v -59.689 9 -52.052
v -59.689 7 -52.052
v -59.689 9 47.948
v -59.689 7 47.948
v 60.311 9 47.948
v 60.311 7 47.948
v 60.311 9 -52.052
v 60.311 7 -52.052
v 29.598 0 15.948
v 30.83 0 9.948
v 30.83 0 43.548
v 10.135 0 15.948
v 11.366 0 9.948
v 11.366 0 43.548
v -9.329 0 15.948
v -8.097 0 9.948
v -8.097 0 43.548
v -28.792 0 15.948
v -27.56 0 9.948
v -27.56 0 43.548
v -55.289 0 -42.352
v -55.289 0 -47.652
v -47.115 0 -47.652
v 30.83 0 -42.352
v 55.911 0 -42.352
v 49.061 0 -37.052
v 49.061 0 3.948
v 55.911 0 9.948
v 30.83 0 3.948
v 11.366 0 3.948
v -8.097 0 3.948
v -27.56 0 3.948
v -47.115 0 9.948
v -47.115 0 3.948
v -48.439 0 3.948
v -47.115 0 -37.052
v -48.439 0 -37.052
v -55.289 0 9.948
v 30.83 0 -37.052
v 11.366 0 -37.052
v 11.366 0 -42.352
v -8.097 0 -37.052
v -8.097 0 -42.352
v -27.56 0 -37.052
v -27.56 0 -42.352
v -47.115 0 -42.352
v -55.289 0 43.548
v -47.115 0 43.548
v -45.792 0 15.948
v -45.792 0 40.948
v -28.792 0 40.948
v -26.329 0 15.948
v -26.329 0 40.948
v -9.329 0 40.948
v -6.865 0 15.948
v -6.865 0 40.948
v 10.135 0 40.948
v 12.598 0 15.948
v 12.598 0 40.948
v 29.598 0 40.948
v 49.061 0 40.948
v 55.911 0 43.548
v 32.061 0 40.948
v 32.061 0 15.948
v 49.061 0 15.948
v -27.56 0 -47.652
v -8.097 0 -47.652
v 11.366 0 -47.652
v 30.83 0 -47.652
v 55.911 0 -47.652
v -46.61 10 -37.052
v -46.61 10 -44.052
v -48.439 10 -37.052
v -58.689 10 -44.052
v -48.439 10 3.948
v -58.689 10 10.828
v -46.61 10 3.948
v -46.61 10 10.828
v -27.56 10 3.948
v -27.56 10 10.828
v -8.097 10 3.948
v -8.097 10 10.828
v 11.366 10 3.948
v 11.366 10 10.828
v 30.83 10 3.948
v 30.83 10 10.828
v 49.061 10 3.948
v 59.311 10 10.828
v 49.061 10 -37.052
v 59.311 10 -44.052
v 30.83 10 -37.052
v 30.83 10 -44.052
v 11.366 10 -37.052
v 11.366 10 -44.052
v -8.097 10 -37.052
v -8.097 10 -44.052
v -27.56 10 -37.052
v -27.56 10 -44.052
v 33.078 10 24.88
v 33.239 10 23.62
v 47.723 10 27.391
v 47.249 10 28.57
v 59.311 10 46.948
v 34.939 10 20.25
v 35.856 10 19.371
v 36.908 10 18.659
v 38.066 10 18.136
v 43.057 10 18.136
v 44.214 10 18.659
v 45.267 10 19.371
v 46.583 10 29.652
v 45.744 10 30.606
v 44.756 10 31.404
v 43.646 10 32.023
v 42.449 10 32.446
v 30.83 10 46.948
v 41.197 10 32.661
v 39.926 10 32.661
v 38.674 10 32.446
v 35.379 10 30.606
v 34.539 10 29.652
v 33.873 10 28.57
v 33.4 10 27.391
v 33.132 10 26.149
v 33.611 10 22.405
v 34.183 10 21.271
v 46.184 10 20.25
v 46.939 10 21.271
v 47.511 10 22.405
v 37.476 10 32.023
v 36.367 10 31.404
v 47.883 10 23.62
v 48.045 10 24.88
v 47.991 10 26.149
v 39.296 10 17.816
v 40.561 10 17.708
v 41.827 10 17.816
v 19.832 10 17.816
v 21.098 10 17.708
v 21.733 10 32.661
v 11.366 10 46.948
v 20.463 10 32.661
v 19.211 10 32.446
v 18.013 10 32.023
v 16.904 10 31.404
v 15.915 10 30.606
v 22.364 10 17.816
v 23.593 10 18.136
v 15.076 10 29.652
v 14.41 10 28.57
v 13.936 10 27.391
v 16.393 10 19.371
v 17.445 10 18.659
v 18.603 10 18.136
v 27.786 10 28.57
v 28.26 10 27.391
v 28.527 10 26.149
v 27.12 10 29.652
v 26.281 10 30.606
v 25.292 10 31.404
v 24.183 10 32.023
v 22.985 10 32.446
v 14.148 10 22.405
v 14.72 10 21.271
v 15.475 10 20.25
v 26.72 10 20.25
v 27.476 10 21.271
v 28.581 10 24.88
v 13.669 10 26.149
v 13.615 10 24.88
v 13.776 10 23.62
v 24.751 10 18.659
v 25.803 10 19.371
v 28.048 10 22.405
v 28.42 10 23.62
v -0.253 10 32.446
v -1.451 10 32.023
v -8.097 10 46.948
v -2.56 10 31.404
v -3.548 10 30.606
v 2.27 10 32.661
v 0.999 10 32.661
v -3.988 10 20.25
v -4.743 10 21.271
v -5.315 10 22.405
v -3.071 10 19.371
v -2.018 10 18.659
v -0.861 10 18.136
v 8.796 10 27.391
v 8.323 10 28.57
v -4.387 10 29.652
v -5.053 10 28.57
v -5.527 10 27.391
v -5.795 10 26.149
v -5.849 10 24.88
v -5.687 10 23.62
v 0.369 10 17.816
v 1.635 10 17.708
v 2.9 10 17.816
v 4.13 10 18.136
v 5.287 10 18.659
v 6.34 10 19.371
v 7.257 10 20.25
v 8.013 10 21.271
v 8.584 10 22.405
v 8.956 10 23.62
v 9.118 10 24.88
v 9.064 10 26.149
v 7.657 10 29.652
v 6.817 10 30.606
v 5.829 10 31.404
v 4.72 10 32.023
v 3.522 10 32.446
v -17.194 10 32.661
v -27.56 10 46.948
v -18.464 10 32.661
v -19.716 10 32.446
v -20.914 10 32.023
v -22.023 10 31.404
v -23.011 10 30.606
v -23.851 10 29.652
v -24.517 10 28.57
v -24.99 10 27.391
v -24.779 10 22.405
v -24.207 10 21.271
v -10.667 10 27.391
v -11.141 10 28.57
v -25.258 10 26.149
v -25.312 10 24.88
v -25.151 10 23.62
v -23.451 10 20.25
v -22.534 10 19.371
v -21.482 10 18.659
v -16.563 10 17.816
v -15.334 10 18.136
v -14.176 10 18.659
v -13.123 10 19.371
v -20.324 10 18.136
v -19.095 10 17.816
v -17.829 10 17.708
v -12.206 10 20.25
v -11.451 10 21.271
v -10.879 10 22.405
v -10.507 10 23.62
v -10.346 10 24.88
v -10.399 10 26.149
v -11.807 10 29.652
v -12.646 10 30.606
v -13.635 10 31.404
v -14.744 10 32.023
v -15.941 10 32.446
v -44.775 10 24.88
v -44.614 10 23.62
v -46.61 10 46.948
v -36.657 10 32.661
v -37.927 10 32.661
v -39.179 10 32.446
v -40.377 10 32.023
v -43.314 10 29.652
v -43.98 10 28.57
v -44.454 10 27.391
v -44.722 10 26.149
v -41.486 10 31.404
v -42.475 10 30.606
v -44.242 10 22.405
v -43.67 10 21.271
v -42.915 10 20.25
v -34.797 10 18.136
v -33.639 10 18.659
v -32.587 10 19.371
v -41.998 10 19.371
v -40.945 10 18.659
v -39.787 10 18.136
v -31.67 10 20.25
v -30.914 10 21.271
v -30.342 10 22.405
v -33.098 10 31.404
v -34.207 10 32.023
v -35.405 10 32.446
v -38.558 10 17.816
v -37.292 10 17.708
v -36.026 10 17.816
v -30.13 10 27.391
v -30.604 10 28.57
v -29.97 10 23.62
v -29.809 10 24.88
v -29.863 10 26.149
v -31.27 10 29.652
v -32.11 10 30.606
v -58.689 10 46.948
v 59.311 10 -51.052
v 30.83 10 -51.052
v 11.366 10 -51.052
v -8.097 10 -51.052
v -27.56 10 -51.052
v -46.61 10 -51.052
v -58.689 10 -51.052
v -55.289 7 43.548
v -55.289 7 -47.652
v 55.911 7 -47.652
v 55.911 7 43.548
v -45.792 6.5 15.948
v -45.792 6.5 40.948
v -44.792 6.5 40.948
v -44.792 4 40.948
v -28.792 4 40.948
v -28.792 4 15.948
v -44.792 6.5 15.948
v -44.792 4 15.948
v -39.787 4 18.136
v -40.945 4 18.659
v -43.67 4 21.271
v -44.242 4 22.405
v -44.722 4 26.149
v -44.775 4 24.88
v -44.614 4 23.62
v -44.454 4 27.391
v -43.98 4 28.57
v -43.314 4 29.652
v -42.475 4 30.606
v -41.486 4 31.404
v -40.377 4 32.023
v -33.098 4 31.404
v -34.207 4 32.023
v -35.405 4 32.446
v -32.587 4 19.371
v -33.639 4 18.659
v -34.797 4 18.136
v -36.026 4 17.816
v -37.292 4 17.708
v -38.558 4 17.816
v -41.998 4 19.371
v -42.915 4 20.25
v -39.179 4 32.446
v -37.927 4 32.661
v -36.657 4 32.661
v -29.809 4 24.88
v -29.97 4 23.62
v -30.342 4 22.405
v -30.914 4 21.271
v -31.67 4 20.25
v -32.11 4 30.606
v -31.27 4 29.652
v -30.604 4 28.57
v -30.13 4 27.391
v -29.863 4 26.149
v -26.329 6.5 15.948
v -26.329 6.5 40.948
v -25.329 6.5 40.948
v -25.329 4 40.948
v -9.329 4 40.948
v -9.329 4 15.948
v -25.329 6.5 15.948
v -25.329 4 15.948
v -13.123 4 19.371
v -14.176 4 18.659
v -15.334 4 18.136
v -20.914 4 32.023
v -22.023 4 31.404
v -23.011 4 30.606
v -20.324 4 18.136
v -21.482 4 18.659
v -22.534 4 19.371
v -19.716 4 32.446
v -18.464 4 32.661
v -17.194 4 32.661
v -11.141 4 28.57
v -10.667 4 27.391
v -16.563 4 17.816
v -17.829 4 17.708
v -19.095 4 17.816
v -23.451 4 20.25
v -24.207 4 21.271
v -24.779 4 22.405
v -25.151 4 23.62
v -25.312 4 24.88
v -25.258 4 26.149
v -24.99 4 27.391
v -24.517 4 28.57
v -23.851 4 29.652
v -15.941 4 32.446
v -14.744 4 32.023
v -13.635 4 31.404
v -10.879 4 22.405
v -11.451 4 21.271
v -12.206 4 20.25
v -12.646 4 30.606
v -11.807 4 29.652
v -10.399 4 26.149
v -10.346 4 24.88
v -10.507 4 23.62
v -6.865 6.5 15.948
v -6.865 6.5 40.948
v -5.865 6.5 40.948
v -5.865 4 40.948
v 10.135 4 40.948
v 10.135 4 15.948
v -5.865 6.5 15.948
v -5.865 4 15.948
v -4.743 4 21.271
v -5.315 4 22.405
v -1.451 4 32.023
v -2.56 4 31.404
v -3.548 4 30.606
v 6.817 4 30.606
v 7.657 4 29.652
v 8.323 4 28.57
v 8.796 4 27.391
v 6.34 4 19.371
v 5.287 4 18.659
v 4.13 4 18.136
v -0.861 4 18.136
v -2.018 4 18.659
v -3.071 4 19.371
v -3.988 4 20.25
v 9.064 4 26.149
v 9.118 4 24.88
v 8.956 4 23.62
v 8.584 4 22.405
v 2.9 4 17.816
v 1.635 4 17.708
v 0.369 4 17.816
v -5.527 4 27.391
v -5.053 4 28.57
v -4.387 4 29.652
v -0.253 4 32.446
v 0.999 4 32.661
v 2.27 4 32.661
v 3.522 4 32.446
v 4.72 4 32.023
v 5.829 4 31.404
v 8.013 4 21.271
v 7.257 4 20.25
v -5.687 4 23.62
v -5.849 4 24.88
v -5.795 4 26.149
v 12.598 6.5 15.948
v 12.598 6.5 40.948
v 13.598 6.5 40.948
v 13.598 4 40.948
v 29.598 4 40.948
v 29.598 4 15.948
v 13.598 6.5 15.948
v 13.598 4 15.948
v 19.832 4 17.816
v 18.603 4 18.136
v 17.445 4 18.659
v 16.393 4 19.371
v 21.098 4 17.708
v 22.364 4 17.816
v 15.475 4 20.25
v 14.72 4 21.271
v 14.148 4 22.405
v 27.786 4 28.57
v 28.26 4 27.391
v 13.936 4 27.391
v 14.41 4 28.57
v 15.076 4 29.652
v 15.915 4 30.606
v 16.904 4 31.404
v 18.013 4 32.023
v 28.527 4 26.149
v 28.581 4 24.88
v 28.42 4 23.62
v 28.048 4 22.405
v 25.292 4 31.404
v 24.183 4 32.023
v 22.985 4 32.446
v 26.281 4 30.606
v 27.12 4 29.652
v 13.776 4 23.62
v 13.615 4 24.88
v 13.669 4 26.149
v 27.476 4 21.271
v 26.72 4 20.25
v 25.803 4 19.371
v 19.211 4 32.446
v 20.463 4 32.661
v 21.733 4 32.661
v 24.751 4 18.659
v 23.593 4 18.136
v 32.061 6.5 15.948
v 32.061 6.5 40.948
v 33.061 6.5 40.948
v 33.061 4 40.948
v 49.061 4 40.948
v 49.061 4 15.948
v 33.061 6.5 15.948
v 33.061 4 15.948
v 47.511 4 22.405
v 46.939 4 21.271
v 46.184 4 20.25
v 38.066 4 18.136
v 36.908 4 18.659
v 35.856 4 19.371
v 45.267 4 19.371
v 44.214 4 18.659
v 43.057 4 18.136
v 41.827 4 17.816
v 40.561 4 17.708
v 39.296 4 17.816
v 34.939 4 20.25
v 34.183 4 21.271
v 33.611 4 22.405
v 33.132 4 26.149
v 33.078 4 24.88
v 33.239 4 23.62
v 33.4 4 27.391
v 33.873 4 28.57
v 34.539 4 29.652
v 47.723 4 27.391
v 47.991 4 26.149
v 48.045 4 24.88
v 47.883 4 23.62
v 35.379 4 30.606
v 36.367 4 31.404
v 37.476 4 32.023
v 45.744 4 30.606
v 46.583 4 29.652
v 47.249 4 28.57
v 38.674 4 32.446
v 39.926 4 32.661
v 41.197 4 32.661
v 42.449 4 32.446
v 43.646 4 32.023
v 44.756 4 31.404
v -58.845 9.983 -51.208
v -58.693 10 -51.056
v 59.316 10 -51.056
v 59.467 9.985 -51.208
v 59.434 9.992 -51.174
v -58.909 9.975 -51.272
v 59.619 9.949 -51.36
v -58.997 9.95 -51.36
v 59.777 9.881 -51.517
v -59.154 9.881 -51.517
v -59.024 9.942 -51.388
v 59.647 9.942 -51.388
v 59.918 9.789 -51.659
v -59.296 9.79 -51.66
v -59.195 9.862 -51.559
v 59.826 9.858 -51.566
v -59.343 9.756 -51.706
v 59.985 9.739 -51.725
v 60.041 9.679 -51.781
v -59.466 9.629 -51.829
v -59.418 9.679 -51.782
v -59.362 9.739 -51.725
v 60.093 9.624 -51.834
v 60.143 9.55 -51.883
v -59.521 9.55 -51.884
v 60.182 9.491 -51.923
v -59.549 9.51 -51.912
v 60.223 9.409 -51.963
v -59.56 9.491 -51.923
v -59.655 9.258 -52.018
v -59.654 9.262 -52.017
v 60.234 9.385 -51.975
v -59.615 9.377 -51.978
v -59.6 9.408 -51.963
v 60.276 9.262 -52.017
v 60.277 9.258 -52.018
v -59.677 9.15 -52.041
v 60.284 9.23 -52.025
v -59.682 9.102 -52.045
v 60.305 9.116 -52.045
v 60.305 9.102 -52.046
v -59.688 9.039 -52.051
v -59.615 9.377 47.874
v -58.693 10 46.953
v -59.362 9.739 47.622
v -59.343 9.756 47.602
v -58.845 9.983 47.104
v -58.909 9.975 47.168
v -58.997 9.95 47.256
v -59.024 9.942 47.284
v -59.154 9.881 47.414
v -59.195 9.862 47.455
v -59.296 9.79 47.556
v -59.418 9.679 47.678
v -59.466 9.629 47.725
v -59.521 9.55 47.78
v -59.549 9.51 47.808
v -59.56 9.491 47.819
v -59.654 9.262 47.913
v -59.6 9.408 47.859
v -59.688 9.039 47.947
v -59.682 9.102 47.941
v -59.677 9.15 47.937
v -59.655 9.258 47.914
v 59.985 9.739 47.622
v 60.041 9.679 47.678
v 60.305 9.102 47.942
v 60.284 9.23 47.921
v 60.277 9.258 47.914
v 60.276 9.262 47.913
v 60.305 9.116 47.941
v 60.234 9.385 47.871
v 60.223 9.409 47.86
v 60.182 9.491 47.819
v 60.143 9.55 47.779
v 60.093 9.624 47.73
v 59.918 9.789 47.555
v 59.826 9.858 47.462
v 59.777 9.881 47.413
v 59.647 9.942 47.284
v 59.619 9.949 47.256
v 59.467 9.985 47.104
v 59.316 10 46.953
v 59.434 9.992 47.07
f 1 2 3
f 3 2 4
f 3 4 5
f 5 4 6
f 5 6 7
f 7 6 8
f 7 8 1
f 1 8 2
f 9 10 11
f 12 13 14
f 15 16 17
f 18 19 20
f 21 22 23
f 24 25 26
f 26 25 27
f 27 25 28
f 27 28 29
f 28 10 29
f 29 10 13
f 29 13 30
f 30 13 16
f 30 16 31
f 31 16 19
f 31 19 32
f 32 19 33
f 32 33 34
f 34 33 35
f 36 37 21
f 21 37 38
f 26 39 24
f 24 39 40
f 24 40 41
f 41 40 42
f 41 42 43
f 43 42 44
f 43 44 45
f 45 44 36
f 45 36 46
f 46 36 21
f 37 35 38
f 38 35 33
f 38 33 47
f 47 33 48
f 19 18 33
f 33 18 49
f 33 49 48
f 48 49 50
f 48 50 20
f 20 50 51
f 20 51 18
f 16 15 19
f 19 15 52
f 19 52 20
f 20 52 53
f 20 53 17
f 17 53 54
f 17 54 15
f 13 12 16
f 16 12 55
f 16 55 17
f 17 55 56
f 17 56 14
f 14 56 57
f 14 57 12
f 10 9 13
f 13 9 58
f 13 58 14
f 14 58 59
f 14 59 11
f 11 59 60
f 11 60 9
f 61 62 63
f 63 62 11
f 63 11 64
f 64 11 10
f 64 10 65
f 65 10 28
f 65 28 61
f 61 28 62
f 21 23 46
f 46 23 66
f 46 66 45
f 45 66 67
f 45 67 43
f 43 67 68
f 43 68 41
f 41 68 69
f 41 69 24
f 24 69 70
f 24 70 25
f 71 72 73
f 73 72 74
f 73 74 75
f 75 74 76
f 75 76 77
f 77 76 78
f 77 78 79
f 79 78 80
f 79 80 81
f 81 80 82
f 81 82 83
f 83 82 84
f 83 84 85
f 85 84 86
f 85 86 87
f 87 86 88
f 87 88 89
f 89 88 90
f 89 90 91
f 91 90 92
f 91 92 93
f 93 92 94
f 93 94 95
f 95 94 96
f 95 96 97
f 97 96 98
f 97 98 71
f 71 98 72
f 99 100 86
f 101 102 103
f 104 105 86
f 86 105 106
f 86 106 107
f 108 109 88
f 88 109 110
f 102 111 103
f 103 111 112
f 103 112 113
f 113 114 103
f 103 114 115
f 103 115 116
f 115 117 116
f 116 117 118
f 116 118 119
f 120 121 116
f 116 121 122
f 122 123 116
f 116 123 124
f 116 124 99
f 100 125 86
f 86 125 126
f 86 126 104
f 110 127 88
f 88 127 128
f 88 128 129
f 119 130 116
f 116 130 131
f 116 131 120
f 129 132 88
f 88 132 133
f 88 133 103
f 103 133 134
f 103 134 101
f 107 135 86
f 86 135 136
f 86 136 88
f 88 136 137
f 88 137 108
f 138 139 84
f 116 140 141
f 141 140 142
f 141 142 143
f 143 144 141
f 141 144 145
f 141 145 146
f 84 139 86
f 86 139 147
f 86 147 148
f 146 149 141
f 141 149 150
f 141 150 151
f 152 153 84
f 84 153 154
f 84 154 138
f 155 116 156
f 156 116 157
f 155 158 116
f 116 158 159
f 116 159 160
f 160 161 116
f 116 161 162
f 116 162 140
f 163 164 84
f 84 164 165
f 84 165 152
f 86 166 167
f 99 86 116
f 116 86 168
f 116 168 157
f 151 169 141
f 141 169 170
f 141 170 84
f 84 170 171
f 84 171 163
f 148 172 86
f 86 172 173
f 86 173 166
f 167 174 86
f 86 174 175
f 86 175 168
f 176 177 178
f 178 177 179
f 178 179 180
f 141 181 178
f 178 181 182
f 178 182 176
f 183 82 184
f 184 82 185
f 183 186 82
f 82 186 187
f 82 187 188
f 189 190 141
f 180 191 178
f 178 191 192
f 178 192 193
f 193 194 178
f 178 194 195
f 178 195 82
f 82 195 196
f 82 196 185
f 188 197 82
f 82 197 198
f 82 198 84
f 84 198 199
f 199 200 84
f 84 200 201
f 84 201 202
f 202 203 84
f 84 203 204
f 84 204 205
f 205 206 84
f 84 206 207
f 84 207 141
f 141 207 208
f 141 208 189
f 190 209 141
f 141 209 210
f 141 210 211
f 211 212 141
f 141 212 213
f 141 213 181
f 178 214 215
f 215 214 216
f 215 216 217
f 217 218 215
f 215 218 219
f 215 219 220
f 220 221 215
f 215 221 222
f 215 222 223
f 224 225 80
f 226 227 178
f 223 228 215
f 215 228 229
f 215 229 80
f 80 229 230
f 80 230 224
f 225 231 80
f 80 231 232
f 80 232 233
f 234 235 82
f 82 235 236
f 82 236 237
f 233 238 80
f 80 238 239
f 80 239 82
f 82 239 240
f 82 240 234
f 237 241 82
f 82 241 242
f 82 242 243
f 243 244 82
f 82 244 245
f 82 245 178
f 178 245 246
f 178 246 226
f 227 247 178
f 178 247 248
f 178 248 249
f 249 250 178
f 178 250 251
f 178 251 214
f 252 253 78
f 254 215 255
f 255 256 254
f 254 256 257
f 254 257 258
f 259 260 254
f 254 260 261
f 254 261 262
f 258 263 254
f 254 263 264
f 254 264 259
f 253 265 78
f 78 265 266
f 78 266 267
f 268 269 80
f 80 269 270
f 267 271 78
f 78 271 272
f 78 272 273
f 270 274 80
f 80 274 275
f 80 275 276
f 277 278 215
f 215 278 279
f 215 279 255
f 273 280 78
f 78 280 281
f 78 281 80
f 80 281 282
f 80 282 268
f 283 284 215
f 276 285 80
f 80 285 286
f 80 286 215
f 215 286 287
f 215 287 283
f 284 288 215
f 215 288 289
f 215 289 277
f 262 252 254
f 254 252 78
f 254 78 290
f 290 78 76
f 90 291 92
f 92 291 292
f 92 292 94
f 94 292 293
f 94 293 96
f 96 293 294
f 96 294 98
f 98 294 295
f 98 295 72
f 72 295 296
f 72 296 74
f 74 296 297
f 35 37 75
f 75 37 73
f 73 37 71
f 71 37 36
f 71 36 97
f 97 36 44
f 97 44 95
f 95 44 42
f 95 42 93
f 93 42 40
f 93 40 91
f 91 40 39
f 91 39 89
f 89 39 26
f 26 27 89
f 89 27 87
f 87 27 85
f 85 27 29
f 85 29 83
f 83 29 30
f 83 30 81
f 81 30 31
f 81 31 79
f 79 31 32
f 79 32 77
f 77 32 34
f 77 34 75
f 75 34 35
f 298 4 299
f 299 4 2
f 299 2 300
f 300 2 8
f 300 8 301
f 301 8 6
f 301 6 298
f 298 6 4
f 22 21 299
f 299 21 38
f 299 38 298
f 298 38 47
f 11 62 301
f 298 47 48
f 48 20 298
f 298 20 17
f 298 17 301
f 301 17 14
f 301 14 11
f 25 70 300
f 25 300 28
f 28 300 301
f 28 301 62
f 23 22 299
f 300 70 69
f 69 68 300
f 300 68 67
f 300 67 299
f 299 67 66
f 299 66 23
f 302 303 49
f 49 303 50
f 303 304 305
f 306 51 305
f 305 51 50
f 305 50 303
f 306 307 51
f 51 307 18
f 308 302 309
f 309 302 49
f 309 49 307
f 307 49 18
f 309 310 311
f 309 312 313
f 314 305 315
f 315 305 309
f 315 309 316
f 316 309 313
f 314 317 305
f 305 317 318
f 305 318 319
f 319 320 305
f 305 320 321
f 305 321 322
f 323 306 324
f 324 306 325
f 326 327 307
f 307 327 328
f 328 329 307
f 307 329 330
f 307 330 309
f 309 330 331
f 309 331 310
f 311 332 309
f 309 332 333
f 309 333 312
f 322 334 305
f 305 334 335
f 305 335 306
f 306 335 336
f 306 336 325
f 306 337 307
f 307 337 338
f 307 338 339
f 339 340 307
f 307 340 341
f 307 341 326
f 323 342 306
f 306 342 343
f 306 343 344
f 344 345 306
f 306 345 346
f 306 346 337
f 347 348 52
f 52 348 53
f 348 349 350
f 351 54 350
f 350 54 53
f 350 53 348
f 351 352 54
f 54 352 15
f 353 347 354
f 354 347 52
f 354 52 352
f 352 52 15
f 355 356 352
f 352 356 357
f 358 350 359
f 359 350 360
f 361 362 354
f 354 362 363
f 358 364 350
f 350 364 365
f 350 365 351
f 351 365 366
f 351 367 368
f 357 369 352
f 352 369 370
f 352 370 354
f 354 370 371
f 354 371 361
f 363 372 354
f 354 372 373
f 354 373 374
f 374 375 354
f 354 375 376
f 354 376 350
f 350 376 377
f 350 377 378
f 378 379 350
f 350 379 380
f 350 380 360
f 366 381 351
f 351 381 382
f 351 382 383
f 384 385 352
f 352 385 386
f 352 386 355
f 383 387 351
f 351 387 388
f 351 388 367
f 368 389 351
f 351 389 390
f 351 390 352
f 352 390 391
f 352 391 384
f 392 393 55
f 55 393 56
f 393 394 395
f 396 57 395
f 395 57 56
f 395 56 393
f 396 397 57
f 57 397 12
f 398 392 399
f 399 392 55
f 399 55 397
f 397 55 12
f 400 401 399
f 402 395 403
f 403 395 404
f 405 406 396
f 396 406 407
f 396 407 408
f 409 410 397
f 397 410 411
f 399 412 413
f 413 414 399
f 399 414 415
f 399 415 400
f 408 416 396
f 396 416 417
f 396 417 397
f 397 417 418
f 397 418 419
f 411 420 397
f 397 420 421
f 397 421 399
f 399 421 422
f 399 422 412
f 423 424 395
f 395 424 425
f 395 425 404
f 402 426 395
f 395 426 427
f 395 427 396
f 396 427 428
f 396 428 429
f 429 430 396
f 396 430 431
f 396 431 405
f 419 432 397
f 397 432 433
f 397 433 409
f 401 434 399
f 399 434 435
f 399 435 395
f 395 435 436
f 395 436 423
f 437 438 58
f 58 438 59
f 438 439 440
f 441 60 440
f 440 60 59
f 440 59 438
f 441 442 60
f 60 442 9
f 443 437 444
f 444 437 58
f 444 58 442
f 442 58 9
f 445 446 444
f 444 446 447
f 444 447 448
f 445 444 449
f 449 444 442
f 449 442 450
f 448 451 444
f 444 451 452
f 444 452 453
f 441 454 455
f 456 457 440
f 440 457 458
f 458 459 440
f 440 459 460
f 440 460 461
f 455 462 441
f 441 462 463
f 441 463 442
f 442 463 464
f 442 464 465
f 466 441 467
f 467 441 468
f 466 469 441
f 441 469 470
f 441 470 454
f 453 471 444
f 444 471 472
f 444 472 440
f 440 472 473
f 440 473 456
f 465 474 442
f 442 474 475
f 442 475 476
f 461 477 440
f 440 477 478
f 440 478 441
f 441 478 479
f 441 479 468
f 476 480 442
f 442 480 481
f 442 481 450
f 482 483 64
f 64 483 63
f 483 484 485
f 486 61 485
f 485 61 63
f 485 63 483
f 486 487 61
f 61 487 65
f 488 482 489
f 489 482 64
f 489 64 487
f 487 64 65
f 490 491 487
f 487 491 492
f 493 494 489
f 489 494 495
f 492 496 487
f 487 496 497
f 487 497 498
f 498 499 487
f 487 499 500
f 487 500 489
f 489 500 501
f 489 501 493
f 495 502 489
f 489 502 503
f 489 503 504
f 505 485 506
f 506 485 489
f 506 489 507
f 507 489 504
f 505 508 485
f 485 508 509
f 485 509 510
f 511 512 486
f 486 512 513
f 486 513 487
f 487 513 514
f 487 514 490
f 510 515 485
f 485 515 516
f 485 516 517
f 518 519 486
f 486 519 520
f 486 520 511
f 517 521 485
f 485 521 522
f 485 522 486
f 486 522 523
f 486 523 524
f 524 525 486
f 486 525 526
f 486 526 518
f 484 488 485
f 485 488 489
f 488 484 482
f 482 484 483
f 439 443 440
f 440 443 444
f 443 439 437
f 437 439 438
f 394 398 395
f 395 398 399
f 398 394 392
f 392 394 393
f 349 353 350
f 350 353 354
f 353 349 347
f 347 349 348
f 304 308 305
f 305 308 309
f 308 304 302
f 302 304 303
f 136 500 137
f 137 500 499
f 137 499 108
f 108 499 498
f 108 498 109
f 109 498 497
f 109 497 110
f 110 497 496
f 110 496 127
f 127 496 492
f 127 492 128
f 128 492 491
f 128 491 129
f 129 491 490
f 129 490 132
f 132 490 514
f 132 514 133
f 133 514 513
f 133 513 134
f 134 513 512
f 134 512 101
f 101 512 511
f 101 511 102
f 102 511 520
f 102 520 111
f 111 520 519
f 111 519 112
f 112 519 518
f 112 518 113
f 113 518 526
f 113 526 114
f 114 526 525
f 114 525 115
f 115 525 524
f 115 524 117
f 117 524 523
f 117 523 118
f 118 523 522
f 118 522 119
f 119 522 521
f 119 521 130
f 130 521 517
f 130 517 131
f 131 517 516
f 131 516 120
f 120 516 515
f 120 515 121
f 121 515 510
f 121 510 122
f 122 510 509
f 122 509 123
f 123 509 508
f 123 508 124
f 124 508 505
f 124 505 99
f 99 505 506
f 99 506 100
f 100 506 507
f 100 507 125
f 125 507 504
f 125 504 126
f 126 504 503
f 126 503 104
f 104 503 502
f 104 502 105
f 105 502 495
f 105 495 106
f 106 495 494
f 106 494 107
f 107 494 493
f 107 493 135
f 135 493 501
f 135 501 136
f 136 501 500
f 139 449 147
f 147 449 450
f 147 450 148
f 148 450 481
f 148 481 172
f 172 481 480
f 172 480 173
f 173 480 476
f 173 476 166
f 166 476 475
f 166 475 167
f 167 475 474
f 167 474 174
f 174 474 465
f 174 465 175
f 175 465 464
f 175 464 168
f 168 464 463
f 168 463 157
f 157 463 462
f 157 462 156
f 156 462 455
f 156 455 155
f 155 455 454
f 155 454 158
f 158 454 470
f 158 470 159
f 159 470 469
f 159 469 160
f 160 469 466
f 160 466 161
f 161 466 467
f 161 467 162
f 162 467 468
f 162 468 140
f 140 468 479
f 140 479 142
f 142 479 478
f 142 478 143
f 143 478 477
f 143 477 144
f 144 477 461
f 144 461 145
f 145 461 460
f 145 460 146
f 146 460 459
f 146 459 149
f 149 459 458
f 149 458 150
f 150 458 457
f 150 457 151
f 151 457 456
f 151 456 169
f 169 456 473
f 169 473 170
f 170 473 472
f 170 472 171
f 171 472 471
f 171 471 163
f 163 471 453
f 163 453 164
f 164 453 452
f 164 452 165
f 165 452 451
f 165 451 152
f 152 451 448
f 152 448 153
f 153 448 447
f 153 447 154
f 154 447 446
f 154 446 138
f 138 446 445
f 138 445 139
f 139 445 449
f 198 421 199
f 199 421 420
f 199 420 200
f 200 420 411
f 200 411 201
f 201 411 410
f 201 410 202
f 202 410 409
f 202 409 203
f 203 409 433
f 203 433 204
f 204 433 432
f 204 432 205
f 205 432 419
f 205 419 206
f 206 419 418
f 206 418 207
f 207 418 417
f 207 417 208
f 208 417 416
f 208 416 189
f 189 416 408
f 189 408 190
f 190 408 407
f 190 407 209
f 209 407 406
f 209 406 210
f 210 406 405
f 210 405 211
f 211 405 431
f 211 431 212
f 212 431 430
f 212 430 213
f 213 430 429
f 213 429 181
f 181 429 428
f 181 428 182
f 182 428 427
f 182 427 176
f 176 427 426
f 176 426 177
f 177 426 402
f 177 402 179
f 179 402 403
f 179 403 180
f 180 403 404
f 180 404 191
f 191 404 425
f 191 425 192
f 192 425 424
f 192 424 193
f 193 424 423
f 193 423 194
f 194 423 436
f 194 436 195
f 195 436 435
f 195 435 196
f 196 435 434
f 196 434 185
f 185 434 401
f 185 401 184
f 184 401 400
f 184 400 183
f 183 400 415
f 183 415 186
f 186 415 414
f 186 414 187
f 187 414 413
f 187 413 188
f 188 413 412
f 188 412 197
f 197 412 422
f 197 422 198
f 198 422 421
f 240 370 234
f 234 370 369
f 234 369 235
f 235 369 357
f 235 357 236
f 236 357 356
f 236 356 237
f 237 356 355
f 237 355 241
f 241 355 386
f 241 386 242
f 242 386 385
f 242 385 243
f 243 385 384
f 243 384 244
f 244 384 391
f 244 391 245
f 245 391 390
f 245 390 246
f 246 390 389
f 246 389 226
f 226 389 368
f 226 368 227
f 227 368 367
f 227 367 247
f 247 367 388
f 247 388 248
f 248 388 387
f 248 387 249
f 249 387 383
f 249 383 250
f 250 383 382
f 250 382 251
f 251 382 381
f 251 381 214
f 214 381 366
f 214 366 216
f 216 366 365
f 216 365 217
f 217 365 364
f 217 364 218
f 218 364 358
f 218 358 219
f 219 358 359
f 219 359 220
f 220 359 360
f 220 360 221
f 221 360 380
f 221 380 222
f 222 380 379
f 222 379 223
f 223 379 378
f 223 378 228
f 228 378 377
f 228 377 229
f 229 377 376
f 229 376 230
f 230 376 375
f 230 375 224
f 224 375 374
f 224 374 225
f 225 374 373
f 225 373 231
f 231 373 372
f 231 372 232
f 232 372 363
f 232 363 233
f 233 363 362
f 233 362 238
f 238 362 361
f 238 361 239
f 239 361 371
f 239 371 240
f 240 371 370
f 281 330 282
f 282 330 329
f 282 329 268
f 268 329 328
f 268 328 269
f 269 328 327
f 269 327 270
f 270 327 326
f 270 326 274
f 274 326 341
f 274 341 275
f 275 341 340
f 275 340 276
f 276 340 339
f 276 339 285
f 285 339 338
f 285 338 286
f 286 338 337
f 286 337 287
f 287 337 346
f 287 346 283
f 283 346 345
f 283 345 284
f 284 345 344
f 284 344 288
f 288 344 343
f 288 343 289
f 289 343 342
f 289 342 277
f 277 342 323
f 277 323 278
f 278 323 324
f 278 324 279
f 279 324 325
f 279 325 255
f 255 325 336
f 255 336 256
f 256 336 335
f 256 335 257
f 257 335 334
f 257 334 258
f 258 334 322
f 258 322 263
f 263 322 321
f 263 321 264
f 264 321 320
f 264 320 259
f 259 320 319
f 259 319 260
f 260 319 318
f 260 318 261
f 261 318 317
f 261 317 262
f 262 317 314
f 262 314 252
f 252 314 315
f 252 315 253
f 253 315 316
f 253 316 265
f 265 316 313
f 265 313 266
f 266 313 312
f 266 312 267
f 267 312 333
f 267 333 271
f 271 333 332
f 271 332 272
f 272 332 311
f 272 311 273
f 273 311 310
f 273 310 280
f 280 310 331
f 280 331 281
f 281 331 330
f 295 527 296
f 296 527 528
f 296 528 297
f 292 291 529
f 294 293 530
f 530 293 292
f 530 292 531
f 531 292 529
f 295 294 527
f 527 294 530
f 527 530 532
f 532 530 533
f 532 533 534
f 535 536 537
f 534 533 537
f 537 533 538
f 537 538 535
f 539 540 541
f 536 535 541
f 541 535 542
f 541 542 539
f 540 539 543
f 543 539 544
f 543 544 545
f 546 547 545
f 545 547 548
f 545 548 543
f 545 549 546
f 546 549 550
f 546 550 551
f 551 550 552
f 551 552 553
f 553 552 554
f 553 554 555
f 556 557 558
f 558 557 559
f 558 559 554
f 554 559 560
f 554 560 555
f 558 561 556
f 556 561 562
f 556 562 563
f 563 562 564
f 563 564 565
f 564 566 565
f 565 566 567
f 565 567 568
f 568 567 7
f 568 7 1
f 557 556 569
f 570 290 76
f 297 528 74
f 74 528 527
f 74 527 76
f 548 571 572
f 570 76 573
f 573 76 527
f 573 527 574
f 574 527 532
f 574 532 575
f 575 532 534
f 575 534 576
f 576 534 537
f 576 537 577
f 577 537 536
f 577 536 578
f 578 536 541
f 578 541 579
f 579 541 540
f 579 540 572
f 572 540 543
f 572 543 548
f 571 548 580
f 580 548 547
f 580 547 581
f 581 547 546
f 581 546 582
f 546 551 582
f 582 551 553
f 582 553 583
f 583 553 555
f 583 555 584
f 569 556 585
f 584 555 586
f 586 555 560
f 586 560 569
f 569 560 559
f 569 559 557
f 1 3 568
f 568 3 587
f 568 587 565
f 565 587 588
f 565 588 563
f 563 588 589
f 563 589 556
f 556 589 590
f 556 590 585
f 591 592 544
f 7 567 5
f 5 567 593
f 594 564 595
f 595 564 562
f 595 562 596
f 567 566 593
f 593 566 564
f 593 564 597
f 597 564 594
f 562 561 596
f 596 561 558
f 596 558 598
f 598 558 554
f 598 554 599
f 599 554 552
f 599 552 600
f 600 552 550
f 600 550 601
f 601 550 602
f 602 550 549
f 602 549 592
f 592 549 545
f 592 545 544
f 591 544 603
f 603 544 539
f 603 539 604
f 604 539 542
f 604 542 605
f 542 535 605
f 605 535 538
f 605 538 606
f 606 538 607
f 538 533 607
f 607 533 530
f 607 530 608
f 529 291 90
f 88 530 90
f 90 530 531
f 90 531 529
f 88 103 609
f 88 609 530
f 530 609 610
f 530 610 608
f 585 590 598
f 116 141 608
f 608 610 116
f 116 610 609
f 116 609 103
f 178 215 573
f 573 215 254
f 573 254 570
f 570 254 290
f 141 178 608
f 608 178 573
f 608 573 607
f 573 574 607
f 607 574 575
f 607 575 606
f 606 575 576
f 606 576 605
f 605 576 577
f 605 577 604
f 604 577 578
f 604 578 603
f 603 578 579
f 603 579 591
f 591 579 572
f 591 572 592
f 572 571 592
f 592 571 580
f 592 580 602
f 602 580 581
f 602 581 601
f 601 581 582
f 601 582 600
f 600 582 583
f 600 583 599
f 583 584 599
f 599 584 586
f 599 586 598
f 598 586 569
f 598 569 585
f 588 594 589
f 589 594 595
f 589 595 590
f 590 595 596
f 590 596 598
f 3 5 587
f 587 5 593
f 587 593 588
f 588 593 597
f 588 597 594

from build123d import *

# Parameters (mm, degrees)
SKETCH1_W           = 120
SKETCH1_H           = 100
BOSS_EXTRUDE1_DEPTH = 10
SKETCH2_W           = 97.5
SKETCH2_H           = 41
CUT_EXTRUDE1_DEPTH  = 10
SKETCH3_W           = 120
SKETCH3_H           = 100
SKETCH3_W_2         = 111.2
SKETCH3_H_2         = 91.2
CUT_EXTRUDE3_DEPTH  = 7
SKETCH4_W           = 17
SKETCH4_H           = 25
CUT_EXTRUDE4_DEPTH  = 4
SKETCH5_W           = 1
SKETCH5_H           = 25
CUT_EXTRUDE6_DEPTH  = 2.5
SKETCH6_R           = 7.49
CUT_EXTRUDE12_DEPTH = 80.892767694
VARFILLET1_R        = 1


with BuildPart() as part:
    # Sketch1 → Boss-Extrude1 (new body)
    with BuildSketch(Plane(origin=(0, 0, 0), x_dir=(1, 0, 0), z_dir=(0, 1, 0))):
        with Locations((0.311320755, 2.051886792)):
            Rectangle(SKETCH1_W, SKETCH1_H)
    extrude(amount=BOSS_EXTRUDE1_DEPTH)

    # Sketch2 → Cut-Extrude1 (cut)
    with BuildSketch(Plane(origin=(0, 10, 0), x_dir=(1, 0, 0), z_dir=(0, 1, 0))):
        with Locations((0.311320755, 16.551886792)):
            Rectangle(SKETCH2_W, SKETCH2_H)
    extrude(amount=-CUT_EXTRUDE1_DEPTH, mode=Mode.SUBTRACT)

    # Sketch3 → Cut-Extrude3 (cut)
    with BuildSketch(Plane.XZ):
        with Locations((0.311320755, -2.051886792)):
            Rectangle(SKETCH3_W, SKETCH3_H)
        with Locations((0.311320755, -2.051886792)):
            Rectangle(SKETCH3_W_2, SKETCH3_H_2, mode=Mode.SUBTRACT)
    extrude(amount=-CUT_EXTRUDE3_DEPTH, mode=Mode.SUBTRACT)

    # Sketch4 → Cut-Extrude4 (cut)
    with BuildSketch(Plane.XZ):
        with Locations((-37.292172289, 28.448113208)):
            Rectangle(SKETCH4_W, SKETCH4_H)
        with Locations((-17.828799028, 28.448113208)):
            Rectangle(SKETCH4_W, SKETCH4_H)
        with Locations((1.634574233, 28.448113208)):
            Rectangle(SKETCH4_W, SKETCH4_H)
        with Locations((21.097947494, 28.448113208)):
            Rectangle(SKETCH4_W, SKETCH4_H)
        with Locations((40.561320755, 28.448113208)):
            Rectangle(SKETCH4_W, SKETCH4_H)
    extrude(amount=-CUT_EXTRUDE4_DEPTH, mode=Mode.SUBTRACT)

    # Sketch5 → Cut-Extrude6 (cut)
    with BuildSketch(Plane.XZ.offset(-4)):
        with Locations((32.561320755, 28.448113208)):
            Rectangle(SKETCH5_W, SKETCH5_H)
        with Locations((13.097947494, 28.448113208)):
            Rectangle(SKETCH5_W, SKETCH5_H)
        with Locations((-6.365425767, 28.448113208)):
            Rectangle(SKETCH5_W, SKETCH5_H)
        with Locations((-25.828799028, 28.448113208)):
            Rectangle(SKETCH5_W, SKETCH5_H)
        with Locations((-45.292172289, 28.448113208)):
            Rectangle(SKETCH5_W, SKETCH5_H)
    extrude(amount=-CUT_EXTRUDE6_DEPTH, mode=Mode.SUBTRACT)

    # Sketch6 → Cut-Extrude12 (cut, through all)
    with BuildSketch(Plane.XZ.offset(-4)):
        with Locations((40.561320755, 25.198113208)):
            Circle(SKETCH6_R)
        with Locations((21.097947494, 25.198113208)):
            Circle(SKETCH6_R)
        with Locations((1.634574233, 25.198113208)):
            Circle(SKETCH6_R)
        with Locations((-17.828799028, 25.198113208)):
            Circle(SKETCH6_R)
        with Locations((-37.292172289, 25.198113208)):
            Circle(SKETCH6_R)
    extrude(amount=-CUT_EXTRUDE12_DEPTH, mode=Mode.SUBTRACT)

    # VarFillet1
    varfillet1_edges = [part.edges().sort_by_distance(p)[0] for p in [
        (0.311320755, 10, 47.948113208),
        (60.311320755, 10, -2.051886792),
        (0.311320755, 10, -52.051886792),
        (-59.688679245, 10, -2.051886792),
    ]]
    fillet(varfillet1_edges, radius=VARFILLET1_R)


solid = part.part
